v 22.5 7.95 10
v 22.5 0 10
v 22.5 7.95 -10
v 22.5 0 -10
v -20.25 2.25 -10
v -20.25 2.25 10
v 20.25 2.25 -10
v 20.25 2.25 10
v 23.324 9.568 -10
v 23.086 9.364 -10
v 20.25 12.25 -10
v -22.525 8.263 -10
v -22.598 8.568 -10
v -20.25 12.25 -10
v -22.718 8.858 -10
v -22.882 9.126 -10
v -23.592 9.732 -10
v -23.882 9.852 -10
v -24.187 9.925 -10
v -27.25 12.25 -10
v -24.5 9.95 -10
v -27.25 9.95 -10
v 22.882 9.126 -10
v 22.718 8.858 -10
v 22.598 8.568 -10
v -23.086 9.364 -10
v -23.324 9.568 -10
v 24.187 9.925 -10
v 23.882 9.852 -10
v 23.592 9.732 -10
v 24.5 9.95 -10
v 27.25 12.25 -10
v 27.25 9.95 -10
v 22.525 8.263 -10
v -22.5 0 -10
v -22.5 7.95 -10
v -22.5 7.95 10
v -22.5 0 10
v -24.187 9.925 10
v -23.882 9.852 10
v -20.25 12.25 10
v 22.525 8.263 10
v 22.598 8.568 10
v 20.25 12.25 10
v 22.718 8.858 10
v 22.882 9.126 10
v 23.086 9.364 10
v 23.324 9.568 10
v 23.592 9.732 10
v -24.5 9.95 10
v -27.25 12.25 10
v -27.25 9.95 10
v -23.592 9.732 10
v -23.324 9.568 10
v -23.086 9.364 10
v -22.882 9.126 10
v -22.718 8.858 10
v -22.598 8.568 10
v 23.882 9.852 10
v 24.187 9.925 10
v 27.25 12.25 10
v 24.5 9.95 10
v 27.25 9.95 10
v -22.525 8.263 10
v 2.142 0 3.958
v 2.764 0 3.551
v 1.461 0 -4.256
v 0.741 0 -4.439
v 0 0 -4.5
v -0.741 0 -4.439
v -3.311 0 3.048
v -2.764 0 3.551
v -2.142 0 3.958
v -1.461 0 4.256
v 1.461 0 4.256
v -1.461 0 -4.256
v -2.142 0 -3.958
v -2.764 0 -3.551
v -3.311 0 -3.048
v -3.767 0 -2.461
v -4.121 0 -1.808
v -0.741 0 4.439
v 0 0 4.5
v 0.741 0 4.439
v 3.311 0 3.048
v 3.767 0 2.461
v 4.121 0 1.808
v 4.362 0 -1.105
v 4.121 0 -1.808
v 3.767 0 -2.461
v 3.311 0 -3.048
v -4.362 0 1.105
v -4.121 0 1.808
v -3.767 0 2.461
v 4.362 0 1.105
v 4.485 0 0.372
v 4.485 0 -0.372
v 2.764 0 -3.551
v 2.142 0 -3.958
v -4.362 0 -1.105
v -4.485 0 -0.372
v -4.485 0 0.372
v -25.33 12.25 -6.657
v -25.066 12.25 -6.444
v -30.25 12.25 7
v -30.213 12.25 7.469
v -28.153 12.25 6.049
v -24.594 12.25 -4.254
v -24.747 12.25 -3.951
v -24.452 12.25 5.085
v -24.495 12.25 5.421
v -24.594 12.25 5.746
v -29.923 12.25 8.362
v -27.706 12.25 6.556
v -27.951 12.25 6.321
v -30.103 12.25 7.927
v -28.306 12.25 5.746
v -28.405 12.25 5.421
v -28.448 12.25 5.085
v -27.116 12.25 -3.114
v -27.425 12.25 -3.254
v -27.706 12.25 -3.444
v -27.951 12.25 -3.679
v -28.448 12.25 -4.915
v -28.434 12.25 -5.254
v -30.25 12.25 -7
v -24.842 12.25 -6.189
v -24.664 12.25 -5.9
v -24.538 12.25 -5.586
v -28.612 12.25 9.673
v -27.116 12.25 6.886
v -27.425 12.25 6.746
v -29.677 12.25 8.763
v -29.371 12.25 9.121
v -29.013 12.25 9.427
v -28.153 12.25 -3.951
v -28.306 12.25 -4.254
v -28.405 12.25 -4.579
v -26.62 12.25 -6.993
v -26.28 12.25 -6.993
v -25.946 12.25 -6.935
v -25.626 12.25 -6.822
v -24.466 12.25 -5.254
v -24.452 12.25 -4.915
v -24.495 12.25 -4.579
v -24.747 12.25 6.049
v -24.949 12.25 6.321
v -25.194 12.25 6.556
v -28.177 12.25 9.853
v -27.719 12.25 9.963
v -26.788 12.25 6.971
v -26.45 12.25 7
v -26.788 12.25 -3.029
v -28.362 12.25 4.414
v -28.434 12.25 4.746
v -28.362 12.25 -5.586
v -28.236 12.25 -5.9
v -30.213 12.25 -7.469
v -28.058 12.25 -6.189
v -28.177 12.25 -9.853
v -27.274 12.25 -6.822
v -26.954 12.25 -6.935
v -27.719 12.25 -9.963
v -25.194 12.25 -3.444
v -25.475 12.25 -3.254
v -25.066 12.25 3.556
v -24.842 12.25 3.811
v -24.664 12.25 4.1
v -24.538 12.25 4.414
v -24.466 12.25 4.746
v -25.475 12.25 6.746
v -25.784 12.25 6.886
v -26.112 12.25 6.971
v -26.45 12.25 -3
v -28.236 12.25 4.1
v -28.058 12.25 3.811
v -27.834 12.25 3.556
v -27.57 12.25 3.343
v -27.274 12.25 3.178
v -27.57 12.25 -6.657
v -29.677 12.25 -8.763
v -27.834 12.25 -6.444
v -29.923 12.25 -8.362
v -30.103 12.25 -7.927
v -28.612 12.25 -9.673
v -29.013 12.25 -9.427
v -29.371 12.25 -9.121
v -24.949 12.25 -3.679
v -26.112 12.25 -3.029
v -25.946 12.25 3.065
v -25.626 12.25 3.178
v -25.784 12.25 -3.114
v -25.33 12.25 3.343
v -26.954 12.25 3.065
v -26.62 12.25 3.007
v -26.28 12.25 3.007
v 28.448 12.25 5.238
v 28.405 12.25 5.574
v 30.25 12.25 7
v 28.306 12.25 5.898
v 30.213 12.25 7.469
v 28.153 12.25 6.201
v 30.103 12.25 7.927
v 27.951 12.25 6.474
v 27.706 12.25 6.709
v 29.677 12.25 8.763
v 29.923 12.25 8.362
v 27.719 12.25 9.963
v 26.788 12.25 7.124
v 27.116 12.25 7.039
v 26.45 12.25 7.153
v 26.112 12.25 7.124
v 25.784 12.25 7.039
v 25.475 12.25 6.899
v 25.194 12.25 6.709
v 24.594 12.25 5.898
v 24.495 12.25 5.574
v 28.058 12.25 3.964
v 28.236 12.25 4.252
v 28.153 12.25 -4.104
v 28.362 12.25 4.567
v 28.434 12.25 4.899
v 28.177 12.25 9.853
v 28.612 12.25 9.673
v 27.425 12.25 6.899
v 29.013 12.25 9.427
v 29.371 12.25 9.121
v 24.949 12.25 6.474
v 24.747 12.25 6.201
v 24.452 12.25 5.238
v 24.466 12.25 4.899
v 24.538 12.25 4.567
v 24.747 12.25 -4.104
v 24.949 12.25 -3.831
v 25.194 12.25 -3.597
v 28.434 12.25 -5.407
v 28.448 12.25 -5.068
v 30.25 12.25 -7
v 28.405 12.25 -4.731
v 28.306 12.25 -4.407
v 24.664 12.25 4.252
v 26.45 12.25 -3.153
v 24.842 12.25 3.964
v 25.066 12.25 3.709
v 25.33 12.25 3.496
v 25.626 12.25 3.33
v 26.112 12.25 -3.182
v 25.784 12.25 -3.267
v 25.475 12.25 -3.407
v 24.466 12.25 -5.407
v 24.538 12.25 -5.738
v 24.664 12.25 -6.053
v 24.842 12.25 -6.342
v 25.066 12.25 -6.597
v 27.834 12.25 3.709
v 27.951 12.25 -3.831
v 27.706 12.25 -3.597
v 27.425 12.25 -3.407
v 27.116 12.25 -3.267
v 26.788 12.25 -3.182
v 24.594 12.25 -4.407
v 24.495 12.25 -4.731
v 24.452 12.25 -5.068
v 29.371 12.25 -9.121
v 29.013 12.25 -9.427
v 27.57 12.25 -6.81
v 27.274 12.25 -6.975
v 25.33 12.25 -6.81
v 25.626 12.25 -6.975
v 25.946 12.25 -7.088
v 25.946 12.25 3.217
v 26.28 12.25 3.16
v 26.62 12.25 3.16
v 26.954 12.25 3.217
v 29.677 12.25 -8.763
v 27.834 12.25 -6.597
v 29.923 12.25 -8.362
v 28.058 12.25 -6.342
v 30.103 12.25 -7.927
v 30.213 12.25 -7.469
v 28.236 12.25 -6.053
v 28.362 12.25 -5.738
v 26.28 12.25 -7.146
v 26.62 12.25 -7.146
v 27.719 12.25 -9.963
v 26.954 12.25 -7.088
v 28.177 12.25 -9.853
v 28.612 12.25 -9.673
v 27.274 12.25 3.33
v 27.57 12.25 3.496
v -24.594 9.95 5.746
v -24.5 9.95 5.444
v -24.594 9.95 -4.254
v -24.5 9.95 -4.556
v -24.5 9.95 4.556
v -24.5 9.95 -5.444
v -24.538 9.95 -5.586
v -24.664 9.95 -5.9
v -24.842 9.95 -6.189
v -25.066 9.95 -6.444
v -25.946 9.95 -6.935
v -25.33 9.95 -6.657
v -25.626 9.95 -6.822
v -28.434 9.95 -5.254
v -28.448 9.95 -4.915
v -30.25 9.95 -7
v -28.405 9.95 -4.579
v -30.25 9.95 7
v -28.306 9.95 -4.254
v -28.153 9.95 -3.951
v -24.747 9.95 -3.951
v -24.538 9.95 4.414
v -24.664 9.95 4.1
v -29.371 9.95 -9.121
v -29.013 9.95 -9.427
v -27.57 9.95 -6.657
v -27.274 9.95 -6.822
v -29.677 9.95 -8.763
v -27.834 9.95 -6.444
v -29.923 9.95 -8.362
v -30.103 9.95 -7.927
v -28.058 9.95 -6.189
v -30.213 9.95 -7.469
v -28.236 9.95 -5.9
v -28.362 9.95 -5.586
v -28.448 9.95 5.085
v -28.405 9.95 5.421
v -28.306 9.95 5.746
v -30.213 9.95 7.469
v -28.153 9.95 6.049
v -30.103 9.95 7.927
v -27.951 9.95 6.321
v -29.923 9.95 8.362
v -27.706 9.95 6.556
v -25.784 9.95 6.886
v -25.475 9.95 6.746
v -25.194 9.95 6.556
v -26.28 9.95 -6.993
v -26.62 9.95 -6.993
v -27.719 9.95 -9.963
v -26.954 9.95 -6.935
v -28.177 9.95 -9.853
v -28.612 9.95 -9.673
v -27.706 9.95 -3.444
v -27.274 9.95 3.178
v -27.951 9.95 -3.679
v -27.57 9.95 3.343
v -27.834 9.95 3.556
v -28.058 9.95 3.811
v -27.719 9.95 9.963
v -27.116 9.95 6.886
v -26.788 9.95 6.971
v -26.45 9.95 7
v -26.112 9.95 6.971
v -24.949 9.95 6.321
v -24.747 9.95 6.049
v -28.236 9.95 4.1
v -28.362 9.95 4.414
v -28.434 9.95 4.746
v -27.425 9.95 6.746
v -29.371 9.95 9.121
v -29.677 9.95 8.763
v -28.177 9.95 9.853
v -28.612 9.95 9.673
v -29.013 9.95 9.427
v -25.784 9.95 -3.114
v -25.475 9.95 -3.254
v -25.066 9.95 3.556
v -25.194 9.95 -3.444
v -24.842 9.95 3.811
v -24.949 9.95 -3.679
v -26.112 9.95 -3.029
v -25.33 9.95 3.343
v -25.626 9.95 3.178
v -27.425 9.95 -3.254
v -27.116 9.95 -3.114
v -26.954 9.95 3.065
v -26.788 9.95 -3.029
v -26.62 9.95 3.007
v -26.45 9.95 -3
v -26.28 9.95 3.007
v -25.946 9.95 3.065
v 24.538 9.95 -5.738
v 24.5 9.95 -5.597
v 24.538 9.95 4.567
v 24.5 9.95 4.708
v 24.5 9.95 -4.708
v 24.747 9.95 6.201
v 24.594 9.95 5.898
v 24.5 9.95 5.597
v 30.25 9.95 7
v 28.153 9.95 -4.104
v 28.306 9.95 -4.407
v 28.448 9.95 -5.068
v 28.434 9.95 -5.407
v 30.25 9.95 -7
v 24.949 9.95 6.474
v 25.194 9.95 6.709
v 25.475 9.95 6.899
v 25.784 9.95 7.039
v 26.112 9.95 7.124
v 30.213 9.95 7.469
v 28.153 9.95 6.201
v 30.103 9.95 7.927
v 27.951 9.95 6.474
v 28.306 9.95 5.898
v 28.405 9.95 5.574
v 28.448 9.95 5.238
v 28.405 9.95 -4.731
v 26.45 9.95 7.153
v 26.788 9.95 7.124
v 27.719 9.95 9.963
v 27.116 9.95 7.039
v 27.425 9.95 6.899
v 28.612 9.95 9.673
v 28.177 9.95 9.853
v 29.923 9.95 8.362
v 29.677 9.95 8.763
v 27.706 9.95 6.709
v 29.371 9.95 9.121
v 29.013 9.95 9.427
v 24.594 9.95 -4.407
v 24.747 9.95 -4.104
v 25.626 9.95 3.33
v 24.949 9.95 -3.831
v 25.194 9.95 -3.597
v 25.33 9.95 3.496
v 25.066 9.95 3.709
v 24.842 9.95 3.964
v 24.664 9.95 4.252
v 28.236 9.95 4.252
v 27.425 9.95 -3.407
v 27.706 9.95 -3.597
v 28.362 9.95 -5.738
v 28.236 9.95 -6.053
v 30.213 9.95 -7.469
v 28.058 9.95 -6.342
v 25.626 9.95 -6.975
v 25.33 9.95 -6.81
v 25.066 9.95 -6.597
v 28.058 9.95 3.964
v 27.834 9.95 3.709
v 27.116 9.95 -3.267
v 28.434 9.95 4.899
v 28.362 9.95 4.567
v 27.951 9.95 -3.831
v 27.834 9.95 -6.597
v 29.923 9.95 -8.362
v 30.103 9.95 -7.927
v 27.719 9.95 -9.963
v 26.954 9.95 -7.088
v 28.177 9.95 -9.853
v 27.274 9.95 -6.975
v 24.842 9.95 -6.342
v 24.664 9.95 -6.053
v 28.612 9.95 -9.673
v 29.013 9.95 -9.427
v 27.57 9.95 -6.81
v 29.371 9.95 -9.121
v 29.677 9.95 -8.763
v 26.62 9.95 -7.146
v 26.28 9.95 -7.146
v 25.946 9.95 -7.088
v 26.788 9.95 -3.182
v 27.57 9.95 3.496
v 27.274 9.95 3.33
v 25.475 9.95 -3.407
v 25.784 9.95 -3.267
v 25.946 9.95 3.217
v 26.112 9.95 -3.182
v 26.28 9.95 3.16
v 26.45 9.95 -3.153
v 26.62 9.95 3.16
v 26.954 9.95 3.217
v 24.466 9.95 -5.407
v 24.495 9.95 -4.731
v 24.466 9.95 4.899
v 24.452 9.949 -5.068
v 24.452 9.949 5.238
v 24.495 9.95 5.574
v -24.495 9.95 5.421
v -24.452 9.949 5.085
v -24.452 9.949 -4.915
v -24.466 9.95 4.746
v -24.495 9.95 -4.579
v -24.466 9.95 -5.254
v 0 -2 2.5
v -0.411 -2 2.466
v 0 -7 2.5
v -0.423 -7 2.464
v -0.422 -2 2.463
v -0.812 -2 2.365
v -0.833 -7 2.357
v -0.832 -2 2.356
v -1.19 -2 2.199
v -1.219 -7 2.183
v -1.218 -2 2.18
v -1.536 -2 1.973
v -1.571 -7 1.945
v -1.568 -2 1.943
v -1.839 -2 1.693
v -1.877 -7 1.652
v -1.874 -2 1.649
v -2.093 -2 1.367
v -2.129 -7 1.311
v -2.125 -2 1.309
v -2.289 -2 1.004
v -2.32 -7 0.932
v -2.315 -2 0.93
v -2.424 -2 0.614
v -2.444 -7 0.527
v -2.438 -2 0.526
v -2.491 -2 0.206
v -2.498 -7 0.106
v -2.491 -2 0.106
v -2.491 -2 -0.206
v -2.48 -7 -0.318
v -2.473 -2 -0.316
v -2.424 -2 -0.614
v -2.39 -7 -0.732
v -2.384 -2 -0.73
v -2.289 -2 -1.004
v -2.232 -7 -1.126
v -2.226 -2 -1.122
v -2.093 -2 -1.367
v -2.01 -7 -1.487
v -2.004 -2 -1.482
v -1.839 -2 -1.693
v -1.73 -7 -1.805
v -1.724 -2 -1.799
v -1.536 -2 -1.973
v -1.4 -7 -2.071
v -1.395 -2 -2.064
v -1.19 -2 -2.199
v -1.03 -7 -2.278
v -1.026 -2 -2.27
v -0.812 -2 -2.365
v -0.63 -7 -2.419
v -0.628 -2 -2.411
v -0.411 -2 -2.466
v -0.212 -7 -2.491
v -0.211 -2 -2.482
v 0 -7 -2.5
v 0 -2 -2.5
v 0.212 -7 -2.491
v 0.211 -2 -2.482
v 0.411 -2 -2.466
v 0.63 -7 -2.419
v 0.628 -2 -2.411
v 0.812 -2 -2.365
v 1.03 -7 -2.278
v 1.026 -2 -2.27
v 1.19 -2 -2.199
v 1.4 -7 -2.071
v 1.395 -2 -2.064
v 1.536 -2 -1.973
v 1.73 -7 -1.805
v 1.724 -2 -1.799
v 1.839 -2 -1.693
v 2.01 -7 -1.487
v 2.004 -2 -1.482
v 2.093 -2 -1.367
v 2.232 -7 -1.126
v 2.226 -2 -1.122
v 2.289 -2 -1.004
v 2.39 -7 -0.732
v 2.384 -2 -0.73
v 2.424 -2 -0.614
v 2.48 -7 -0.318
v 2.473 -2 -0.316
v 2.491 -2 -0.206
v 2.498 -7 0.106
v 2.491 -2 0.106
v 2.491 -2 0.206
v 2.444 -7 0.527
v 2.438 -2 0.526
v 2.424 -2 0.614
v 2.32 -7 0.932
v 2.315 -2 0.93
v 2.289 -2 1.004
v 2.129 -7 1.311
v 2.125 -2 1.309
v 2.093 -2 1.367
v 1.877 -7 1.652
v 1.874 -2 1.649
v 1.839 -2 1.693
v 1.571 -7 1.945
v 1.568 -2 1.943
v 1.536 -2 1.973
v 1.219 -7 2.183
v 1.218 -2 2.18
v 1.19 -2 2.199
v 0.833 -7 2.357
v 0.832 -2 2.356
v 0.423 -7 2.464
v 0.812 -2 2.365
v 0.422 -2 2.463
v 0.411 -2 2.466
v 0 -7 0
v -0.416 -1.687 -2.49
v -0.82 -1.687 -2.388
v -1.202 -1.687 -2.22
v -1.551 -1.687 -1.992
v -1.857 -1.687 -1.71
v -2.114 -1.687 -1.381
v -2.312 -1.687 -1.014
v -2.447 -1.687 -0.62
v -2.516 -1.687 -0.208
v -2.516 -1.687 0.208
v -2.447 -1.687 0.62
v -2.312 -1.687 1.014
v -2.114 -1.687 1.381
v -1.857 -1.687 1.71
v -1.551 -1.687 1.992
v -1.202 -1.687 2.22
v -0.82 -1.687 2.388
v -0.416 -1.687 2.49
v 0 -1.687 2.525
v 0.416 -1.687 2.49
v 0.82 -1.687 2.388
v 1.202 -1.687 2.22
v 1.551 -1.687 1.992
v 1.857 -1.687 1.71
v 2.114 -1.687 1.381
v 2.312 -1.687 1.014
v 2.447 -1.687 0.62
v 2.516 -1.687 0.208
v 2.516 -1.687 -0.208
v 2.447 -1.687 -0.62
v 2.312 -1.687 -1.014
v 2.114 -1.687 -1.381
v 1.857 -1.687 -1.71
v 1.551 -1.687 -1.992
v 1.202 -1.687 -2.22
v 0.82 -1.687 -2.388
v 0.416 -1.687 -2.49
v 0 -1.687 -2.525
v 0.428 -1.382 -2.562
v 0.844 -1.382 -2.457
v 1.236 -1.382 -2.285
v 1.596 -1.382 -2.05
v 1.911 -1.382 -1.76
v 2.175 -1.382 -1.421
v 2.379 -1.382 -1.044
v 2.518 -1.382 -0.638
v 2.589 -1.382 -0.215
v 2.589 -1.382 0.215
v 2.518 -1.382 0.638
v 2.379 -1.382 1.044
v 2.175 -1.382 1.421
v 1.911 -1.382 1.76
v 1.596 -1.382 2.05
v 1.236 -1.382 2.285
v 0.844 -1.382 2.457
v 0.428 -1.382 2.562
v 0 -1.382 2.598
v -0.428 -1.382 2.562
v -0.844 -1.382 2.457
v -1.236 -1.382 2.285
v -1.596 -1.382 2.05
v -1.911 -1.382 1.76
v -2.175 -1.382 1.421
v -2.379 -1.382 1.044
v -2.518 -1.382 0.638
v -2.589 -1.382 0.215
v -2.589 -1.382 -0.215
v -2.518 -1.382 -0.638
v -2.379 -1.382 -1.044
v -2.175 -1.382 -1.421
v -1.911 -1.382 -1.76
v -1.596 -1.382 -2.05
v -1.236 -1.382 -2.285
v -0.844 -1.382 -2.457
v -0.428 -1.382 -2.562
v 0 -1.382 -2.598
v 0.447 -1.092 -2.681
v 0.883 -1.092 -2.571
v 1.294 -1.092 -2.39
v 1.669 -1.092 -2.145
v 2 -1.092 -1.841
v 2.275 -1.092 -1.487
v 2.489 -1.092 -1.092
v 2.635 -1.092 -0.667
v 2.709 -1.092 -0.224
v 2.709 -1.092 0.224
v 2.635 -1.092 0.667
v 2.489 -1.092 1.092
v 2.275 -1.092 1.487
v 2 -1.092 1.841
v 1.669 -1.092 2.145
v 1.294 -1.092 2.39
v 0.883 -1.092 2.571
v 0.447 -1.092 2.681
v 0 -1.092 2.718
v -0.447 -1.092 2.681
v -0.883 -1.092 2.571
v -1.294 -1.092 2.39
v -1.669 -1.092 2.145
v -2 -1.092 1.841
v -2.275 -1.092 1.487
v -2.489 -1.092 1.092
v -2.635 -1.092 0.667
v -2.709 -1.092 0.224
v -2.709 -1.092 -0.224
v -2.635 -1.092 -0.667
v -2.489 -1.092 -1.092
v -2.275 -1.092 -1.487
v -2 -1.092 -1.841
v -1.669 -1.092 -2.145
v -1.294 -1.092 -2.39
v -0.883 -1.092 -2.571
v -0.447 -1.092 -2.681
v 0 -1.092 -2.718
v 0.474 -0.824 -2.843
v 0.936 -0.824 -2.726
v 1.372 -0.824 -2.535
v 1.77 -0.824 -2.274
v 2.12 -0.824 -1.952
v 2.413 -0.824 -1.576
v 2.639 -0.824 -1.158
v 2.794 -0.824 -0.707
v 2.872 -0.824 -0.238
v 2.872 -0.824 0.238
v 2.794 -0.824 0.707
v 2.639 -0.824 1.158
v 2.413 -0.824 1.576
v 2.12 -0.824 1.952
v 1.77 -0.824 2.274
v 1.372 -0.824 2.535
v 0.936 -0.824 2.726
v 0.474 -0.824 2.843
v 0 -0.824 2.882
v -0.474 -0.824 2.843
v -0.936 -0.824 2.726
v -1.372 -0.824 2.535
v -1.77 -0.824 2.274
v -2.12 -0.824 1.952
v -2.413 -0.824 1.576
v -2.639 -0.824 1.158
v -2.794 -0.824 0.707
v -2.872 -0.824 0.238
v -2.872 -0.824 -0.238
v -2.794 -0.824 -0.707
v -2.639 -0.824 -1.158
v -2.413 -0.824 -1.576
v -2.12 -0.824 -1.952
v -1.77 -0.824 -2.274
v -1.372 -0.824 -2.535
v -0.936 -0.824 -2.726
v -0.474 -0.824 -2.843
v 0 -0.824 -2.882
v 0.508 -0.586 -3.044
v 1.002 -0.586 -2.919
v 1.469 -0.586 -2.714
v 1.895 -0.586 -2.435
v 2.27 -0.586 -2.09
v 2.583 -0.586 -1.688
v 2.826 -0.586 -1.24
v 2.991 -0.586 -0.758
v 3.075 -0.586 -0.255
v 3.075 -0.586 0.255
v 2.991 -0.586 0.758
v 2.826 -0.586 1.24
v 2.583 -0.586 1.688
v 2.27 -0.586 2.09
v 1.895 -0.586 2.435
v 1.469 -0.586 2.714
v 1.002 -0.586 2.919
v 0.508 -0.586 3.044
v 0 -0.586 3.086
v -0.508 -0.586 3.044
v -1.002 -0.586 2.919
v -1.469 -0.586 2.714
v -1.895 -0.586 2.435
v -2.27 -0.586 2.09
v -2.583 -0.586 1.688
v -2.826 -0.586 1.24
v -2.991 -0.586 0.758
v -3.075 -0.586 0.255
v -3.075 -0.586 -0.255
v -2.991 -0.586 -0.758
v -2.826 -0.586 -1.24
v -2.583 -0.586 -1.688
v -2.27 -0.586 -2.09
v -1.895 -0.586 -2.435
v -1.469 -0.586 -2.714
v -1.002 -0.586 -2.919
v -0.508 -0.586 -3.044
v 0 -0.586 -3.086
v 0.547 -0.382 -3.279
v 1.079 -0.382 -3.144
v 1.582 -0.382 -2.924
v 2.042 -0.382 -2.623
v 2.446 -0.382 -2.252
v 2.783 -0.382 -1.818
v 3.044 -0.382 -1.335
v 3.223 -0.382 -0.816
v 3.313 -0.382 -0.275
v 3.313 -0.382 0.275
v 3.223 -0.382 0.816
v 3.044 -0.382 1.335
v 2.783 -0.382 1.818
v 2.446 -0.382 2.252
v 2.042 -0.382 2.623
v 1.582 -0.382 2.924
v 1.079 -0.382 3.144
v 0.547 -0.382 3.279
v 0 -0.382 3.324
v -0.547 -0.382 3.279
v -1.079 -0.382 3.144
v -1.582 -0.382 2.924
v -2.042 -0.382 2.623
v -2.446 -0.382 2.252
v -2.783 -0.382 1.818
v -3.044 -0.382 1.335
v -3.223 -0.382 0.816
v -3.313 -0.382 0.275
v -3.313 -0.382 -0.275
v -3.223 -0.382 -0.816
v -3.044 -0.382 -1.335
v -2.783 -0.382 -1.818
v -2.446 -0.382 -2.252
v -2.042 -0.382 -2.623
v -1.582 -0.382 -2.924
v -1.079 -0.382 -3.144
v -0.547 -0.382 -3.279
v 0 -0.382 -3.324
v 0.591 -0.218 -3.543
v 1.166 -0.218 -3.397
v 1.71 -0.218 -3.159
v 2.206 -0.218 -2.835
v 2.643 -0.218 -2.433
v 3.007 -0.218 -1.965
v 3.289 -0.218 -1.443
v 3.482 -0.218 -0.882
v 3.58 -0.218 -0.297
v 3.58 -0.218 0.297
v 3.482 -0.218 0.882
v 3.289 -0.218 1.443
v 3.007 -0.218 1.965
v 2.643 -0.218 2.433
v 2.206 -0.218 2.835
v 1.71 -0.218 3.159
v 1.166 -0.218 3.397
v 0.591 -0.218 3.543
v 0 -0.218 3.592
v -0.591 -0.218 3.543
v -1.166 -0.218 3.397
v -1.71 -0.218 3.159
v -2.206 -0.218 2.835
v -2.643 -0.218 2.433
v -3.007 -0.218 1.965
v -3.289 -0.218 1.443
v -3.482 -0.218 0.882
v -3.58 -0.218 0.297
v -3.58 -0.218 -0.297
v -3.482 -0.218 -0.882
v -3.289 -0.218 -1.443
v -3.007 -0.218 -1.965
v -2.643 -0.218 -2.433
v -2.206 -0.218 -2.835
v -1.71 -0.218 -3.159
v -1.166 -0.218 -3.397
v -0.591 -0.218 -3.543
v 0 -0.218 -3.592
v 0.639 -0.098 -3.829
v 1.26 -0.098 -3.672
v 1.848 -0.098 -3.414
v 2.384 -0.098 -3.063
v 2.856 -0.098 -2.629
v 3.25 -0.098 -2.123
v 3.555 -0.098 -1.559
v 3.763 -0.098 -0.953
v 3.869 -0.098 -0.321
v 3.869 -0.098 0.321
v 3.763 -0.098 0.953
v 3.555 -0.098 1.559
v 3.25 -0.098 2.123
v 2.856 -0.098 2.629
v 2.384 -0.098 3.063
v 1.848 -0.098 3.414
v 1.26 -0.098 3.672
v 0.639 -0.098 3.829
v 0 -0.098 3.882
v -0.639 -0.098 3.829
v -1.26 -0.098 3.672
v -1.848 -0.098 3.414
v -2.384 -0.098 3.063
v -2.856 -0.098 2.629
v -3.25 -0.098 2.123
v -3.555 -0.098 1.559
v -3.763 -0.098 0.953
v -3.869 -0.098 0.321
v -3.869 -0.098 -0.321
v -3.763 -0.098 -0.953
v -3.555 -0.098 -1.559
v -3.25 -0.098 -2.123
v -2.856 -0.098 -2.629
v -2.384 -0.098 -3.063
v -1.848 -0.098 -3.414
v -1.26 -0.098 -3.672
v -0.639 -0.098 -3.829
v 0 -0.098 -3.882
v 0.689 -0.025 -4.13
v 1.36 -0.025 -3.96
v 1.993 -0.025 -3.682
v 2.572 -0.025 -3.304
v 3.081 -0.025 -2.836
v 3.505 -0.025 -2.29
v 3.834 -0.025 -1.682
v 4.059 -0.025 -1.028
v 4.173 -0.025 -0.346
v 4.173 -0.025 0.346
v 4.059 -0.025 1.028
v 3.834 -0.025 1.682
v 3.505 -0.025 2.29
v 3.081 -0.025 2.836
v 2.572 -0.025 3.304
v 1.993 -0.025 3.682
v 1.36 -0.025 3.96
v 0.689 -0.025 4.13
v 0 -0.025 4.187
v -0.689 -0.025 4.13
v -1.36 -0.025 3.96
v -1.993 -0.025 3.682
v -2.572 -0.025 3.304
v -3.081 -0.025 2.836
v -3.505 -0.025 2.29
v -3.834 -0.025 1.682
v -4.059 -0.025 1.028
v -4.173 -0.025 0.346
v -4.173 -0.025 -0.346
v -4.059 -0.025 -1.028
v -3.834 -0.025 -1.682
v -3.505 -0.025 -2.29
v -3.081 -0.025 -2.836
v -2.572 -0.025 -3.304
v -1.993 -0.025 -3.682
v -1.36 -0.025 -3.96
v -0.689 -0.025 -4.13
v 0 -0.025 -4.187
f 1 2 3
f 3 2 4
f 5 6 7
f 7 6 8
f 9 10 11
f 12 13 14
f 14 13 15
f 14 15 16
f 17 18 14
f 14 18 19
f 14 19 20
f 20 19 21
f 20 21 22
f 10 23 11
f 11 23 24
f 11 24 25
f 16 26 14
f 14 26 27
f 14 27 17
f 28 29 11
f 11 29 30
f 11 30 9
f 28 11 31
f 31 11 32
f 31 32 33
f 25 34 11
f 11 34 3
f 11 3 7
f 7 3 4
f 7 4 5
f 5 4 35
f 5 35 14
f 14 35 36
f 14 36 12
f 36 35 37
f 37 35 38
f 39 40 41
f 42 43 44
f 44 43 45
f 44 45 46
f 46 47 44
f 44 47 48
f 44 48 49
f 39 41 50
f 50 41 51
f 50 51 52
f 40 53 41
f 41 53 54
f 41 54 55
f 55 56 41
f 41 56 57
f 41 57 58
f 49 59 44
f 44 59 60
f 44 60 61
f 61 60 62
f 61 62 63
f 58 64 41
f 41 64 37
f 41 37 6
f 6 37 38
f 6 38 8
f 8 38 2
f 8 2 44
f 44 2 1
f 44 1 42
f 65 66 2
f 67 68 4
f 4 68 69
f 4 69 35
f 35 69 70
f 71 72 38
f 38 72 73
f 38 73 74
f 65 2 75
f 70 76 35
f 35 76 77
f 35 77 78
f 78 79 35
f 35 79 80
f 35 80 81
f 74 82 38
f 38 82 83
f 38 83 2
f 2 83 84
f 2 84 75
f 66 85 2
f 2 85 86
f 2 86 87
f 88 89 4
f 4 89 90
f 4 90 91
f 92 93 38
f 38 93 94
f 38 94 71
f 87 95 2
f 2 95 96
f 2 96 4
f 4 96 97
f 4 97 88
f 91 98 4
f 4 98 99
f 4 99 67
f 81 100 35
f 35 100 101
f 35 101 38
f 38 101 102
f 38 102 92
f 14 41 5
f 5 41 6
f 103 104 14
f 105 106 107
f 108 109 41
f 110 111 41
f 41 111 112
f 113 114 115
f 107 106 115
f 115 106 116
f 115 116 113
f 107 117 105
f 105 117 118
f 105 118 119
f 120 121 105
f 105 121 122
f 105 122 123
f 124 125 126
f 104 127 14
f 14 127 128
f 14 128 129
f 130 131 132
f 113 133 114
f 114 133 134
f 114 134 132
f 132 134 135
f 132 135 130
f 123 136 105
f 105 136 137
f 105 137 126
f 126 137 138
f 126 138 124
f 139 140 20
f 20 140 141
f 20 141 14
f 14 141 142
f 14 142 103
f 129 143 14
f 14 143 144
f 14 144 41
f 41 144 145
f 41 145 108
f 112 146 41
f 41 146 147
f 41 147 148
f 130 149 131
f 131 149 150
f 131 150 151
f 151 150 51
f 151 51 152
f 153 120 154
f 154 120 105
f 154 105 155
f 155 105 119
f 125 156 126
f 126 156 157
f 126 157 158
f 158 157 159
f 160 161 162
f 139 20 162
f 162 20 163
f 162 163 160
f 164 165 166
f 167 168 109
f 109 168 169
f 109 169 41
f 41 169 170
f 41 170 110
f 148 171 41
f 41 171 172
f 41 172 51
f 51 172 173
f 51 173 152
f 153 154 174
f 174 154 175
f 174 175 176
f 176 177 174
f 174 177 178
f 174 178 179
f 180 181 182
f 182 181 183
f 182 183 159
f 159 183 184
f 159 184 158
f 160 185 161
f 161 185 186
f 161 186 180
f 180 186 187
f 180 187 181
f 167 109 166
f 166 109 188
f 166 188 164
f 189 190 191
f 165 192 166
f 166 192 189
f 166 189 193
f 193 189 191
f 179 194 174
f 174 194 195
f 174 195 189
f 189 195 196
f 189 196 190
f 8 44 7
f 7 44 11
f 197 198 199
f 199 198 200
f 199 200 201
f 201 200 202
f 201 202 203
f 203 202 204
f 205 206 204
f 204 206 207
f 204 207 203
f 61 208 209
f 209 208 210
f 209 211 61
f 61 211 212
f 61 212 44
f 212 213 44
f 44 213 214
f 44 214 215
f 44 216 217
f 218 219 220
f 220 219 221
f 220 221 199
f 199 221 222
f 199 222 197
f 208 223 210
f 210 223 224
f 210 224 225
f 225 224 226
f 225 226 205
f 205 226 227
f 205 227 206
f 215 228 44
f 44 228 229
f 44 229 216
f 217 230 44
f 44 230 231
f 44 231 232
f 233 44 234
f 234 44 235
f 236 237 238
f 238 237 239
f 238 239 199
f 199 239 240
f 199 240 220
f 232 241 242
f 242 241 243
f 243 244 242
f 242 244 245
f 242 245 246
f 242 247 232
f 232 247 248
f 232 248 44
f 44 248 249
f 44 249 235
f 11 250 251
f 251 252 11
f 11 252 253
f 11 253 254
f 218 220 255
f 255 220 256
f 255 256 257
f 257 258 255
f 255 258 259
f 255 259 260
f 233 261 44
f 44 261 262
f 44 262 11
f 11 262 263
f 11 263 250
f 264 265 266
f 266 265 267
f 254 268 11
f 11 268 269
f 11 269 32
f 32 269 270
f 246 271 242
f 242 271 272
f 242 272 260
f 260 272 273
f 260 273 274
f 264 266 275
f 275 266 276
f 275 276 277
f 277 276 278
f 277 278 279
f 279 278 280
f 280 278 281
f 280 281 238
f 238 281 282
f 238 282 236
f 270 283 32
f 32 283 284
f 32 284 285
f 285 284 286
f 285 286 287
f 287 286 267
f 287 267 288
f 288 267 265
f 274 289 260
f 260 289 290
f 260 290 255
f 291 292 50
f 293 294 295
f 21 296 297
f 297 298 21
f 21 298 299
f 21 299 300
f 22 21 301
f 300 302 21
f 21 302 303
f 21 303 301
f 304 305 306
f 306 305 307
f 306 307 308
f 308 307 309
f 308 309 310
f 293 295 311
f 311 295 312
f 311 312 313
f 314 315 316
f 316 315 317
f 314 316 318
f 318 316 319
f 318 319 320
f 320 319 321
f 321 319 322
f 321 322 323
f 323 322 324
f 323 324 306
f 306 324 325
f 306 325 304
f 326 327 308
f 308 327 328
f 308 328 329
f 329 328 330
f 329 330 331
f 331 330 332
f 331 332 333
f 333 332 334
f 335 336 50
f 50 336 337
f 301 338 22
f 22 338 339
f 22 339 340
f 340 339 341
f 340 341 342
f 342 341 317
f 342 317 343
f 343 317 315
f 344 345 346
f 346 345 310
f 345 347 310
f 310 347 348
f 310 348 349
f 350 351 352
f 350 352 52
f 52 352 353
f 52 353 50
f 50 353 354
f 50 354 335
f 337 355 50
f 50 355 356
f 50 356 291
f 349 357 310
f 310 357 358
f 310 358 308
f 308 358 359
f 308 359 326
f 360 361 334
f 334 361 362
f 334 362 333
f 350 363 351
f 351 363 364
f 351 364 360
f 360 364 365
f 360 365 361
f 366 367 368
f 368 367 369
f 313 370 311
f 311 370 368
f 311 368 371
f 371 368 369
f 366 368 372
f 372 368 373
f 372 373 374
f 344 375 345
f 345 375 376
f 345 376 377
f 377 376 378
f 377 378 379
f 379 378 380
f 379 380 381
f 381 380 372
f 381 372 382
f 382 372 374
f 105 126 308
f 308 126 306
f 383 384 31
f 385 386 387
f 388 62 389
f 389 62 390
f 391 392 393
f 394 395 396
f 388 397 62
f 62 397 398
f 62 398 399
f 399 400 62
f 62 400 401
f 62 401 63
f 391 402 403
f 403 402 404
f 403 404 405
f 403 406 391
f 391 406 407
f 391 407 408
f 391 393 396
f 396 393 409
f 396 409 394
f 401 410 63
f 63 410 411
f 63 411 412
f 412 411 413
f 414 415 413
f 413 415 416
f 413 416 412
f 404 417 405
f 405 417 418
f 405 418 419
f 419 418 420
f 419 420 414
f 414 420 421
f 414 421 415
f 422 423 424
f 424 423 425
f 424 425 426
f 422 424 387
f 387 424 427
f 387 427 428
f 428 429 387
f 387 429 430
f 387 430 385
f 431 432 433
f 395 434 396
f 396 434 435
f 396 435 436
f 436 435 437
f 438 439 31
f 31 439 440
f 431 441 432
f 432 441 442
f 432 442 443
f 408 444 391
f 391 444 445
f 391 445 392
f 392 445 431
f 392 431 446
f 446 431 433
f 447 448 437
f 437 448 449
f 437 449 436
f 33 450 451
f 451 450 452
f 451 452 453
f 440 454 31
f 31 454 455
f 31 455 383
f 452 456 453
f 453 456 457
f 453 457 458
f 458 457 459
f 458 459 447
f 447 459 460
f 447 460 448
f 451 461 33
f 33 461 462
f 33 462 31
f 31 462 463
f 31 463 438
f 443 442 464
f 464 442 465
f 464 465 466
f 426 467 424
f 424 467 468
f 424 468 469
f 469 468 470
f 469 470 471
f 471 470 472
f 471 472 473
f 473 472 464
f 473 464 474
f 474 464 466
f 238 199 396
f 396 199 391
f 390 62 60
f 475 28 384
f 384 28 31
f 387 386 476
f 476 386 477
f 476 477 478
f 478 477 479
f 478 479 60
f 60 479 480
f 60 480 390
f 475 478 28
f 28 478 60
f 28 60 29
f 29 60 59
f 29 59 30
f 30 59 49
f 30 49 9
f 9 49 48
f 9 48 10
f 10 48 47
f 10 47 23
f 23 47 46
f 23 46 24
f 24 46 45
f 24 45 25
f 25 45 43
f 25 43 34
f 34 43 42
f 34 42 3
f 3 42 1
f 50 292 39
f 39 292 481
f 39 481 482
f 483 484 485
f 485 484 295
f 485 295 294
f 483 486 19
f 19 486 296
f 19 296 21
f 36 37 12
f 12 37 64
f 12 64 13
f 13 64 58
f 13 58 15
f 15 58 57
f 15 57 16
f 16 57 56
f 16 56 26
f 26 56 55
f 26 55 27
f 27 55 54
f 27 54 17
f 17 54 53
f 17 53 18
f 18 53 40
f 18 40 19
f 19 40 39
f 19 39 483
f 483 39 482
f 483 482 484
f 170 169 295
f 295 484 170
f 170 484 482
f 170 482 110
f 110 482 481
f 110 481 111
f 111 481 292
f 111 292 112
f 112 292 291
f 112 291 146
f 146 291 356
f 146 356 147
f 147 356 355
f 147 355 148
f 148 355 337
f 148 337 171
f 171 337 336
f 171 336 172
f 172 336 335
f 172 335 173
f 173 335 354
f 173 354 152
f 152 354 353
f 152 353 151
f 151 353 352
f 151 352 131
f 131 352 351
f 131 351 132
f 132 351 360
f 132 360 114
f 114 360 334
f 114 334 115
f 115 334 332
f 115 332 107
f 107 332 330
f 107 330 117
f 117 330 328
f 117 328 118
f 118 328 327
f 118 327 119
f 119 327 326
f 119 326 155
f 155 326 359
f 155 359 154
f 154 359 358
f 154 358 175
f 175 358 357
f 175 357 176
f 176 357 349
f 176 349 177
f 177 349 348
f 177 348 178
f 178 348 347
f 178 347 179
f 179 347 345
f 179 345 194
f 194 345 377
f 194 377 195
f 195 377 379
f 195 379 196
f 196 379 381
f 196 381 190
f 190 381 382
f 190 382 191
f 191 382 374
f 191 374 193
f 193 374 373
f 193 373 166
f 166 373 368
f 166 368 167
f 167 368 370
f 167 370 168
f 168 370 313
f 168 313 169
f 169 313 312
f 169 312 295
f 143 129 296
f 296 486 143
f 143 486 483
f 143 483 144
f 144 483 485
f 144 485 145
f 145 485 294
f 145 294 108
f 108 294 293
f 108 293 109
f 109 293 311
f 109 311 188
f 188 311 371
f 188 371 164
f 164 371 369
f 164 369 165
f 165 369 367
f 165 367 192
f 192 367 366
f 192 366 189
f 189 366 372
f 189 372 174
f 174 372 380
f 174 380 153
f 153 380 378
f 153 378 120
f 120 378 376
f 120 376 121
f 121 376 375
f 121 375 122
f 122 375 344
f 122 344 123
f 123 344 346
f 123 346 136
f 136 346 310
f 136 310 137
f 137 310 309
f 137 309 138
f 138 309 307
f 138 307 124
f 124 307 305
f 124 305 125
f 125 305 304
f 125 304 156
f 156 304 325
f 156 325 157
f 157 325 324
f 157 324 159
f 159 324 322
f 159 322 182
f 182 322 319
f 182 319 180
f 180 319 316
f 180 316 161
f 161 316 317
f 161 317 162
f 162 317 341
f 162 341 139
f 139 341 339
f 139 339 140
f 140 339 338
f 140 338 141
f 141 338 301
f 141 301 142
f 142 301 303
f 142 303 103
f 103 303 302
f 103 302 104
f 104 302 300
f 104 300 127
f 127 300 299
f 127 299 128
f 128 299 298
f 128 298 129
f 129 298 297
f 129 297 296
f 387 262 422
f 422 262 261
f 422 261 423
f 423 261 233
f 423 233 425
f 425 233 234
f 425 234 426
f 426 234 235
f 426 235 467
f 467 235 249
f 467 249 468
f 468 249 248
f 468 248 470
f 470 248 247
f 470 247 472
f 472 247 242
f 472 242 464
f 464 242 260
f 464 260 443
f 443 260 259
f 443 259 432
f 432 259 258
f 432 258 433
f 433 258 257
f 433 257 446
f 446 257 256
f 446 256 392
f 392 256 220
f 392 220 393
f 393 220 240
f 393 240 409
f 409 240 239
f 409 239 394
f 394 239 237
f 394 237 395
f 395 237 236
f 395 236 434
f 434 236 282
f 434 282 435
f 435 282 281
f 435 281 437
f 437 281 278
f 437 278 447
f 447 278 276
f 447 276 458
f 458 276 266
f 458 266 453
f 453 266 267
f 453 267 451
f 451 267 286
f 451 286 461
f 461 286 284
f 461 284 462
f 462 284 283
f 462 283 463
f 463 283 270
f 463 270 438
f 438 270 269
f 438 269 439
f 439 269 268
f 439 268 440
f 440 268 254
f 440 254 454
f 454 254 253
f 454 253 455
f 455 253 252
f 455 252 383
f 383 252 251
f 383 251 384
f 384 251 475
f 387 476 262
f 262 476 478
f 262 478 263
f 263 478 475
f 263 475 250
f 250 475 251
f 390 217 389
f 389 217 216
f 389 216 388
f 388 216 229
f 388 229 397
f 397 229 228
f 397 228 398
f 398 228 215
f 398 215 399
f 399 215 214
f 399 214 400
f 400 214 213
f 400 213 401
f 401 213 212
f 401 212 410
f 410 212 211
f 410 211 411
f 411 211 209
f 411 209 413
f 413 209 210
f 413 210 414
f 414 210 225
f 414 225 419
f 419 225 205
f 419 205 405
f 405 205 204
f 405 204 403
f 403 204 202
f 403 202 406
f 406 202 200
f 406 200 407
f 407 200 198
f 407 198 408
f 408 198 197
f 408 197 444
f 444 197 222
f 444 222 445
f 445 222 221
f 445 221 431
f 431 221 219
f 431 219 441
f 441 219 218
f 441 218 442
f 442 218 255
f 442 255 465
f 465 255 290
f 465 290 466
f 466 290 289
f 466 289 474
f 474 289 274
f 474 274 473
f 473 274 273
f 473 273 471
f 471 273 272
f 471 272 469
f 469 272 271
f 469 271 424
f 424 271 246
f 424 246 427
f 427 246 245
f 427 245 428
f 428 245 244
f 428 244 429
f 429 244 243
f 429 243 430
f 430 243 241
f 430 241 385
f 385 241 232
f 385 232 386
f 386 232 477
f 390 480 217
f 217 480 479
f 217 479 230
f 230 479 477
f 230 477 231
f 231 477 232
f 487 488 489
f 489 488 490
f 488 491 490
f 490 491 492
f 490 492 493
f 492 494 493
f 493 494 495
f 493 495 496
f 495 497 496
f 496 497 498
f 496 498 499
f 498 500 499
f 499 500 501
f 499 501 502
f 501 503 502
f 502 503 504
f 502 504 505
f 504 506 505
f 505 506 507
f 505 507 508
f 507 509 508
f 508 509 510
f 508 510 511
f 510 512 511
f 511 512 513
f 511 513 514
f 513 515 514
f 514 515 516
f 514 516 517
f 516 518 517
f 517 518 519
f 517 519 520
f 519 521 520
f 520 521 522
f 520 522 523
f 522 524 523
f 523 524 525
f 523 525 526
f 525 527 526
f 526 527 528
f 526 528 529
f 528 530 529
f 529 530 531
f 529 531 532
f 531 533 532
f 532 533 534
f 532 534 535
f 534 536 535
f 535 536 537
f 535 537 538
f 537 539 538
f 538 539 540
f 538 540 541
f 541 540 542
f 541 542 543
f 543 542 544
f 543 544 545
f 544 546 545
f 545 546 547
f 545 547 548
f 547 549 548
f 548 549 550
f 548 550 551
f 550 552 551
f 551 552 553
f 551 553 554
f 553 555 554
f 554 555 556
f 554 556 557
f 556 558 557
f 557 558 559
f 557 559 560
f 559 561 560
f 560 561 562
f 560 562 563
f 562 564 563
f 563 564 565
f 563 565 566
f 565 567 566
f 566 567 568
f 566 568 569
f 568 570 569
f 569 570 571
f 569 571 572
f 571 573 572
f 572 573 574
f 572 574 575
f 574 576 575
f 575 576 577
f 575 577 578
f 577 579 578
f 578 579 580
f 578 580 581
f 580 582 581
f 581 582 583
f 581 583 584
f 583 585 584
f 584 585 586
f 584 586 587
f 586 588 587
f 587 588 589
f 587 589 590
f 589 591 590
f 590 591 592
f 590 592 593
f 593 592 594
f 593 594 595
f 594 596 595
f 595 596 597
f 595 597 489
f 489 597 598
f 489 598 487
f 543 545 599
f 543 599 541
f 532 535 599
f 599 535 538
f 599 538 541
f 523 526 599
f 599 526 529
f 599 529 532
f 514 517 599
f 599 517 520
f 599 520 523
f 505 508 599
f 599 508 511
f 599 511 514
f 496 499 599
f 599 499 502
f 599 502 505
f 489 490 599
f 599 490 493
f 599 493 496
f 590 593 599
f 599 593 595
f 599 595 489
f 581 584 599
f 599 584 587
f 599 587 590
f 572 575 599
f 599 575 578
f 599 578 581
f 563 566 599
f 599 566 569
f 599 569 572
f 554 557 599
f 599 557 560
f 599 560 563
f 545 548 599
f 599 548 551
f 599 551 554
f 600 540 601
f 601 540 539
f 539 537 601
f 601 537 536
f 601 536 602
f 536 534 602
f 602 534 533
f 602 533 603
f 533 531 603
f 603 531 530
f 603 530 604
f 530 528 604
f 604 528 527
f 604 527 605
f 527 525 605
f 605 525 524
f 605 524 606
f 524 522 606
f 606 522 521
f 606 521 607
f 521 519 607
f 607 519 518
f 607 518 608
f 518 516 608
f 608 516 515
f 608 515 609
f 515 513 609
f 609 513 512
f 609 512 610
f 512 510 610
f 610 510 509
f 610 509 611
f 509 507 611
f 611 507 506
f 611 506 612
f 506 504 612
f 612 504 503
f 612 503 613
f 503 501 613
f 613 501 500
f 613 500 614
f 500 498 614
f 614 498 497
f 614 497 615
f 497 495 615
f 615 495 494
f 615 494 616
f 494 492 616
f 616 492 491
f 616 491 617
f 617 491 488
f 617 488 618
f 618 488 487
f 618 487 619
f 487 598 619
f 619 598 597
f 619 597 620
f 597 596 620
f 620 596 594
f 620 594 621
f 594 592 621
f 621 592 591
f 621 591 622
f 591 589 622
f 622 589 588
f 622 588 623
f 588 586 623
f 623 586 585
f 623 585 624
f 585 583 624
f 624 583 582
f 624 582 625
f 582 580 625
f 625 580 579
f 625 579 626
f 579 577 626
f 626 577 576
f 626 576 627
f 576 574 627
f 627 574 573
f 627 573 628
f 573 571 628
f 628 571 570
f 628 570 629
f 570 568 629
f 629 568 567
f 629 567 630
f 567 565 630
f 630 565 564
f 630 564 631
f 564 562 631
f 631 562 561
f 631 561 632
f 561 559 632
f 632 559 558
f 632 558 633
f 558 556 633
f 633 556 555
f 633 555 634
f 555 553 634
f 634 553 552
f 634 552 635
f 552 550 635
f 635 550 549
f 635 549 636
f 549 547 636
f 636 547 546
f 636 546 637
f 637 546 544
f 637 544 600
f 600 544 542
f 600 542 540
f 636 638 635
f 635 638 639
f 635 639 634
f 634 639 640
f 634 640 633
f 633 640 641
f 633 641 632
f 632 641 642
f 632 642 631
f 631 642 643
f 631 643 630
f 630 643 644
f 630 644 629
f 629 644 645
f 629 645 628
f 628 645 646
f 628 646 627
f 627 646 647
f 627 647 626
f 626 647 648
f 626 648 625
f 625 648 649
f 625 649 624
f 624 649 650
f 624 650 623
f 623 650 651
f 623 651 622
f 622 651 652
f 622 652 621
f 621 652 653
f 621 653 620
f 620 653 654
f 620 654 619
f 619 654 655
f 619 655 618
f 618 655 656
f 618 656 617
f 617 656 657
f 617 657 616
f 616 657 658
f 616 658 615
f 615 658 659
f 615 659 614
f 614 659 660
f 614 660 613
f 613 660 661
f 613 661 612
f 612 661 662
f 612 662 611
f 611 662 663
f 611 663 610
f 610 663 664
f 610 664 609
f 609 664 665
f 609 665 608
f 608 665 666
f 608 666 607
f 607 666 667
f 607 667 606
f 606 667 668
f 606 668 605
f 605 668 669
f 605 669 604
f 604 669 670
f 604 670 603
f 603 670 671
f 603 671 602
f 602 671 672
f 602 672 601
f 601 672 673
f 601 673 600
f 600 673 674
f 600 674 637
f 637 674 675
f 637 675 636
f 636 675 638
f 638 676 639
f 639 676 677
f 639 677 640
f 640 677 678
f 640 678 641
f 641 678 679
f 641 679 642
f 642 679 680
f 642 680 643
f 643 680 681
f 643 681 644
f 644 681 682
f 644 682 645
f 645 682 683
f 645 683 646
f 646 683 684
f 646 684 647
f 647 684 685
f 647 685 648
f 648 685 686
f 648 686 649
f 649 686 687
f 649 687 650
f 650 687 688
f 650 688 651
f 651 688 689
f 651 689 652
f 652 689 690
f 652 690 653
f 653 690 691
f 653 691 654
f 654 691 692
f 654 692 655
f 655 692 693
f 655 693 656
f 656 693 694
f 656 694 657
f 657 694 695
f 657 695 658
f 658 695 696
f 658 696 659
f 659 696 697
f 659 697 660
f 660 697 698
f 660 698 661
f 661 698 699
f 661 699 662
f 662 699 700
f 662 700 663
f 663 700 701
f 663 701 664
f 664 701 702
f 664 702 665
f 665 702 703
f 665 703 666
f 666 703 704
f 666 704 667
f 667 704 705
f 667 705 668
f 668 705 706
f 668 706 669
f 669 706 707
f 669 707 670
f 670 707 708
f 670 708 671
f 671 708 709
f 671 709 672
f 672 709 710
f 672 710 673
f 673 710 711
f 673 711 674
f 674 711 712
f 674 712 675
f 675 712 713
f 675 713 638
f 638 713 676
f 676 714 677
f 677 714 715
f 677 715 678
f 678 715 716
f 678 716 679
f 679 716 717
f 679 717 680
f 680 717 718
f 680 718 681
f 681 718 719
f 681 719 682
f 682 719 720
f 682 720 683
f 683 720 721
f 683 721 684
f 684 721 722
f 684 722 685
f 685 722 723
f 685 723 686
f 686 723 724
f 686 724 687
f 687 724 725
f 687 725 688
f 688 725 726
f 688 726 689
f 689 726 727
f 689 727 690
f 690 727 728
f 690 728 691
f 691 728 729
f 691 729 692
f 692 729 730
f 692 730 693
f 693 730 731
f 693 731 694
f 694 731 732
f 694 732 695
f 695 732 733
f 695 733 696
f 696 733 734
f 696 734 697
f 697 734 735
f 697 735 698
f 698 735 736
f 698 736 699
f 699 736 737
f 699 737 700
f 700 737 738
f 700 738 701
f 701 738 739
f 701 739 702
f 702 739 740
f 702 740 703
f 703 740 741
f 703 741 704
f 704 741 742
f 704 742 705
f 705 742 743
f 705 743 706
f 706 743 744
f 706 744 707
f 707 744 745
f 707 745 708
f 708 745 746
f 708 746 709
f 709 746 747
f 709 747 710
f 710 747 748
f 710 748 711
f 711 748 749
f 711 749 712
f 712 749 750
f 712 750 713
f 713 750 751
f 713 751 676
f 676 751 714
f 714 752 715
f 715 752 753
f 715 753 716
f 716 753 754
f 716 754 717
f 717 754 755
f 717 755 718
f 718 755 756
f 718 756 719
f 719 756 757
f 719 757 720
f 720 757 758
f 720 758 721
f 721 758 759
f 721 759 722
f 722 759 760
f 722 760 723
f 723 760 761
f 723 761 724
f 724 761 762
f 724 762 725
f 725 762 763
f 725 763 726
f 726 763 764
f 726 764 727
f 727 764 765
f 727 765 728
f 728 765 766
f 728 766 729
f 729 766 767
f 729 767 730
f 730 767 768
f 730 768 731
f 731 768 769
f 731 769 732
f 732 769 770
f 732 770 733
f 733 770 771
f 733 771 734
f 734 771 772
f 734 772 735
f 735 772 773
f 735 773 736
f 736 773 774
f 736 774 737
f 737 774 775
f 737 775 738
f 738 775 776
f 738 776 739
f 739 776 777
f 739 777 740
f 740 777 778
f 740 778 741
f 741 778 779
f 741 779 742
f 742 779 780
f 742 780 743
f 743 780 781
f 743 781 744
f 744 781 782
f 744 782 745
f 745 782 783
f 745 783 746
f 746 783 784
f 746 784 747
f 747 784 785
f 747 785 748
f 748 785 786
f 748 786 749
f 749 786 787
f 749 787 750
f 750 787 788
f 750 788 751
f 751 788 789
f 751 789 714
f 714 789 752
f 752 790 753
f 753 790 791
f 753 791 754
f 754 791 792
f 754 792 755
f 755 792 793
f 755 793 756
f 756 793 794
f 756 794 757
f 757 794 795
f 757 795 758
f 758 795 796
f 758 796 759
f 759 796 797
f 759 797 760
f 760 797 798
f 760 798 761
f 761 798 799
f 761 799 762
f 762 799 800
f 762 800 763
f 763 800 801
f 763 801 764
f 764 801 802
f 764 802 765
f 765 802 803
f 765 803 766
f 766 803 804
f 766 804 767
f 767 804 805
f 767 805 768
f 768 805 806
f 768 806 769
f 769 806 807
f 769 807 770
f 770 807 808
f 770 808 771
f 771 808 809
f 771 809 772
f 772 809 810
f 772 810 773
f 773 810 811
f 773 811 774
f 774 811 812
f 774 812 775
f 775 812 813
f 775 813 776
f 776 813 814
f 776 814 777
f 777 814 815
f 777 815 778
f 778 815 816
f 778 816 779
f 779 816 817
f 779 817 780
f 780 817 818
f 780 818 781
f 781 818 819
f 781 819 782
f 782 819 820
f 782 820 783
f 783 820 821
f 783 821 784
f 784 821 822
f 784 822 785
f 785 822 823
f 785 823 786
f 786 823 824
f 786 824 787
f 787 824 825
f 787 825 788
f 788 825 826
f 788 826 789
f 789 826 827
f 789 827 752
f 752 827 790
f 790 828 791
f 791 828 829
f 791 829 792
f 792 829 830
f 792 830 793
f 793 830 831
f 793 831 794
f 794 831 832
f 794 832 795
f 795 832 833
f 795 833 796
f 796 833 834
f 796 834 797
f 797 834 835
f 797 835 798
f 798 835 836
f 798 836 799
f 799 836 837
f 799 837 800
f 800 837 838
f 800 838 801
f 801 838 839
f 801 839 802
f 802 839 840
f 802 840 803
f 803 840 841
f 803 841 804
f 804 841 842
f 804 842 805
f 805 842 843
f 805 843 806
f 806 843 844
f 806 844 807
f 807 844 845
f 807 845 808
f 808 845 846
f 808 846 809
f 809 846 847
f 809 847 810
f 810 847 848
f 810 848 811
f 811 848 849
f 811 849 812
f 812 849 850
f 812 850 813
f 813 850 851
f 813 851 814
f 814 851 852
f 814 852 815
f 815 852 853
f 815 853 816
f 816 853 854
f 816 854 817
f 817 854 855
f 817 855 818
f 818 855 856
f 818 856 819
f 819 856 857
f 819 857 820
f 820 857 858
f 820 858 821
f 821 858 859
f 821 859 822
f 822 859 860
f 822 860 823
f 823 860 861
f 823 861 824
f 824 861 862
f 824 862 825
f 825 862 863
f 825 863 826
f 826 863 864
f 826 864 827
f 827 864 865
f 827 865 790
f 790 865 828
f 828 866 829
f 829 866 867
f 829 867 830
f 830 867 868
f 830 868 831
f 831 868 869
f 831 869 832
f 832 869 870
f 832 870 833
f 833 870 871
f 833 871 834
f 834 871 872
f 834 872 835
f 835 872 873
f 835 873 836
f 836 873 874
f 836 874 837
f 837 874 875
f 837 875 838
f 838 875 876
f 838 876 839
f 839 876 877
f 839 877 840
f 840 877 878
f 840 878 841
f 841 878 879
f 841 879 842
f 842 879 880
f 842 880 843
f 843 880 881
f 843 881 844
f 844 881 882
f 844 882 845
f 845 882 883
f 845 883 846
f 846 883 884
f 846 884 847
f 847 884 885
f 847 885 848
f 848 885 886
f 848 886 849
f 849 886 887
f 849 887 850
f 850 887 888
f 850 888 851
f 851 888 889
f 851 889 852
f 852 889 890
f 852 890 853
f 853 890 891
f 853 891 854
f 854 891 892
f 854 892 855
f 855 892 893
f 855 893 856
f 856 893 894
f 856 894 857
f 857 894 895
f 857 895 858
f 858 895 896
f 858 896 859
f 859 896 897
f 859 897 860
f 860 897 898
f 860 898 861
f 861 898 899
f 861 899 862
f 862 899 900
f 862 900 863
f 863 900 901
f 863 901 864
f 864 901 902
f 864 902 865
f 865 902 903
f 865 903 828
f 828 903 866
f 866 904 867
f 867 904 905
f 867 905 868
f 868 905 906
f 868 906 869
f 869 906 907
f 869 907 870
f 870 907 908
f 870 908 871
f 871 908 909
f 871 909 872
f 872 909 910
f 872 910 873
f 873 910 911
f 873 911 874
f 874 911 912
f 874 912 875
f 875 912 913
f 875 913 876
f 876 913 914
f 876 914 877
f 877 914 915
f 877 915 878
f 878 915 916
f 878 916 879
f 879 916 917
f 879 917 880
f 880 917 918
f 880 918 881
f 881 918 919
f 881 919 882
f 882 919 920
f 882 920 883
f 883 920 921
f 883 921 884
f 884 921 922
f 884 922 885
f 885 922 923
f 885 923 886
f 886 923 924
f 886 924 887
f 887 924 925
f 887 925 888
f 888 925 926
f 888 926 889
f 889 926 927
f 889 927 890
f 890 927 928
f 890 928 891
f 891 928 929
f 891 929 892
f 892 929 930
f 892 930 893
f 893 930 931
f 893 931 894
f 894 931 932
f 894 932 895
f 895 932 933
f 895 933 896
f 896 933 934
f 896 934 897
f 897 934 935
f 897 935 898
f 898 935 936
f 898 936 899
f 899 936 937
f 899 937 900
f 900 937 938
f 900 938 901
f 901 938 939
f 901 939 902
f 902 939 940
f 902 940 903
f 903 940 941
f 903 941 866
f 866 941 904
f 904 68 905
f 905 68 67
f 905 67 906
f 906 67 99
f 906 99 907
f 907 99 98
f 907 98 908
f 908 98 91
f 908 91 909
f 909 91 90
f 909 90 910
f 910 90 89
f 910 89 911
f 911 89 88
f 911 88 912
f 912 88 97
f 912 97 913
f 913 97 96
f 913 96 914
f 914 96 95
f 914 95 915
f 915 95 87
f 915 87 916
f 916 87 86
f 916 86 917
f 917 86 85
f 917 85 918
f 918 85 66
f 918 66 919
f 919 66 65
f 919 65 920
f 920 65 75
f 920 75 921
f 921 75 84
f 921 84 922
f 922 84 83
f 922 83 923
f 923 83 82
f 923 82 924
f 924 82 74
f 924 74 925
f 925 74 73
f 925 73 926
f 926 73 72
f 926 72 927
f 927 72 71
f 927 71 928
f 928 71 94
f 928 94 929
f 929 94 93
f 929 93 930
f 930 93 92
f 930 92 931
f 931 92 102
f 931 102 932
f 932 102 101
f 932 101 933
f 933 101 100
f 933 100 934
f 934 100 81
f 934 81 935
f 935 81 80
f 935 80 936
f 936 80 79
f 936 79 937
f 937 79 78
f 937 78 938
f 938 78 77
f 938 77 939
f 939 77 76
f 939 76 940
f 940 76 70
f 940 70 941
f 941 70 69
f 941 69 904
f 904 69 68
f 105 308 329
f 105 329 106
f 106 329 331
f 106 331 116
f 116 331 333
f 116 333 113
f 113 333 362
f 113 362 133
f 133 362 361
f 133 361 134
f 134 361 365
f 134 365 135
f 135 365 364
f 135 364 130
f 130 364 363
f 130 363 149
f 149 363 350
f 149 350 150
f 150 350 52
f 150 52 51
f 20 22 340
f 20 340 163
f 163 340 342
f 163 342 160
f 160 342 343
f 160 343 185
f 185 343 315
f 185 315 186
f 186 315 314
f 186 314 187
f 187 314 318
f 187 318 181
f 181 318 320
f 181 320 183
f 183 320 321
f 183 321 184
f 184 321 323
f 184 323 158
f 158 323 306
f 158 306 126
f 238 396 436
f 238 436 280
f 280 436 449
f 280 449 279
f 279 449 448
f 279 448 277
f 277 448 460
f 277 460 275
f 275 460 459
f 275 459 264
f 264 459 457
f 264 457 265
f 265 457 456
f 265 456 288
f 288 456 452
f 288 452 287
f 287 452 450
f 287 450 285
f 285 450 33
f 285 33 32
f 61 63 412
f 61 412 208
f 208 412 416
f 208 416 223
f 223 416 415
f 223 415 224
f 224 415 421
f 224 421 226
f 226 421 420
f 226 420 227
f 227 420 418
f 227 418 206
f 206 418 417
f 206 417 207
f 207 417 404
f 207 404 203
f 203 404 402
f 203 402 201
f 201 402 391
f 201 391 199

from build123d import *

# Parameters (mm, degrees)
SKETCH1_W           = 45
SKETCH1_H           = 20
BOSS_EXTRUDE1_DEPTH = 2.25
SKETCH2_W           = 2.25
SKETCH2_H           = 20
BOSS_EXTRUDE2_DEPTH = 10
SKETCH3_W           = 10
SKETCH3_H           = 20
BOSS_EXTRUDE3_DEPTH = 2.3
FILLET1_R           = 2
SKETCH4_R           = 2
CUT_EXTRUDE1_DEPTH  = 35.133927404
SKETCH5_R           = 2.5
BOSS_EXTRUDE4_DEPTH = 7
FILLET2_R           = 2
FILLET3_R           = 3


with BuildPart() as part:
    # Sketch1 → Boss-Extrude1 (new body)
    with BuildSketch(Plane(origin=(0, 0, 0), x_dir=(1, 0, 0), z_dir=(0, 1, 0))):
        Rectangle(SKETCH1_W, SKETCH1_H)
    extrude(amount=BOSS_EXTRUDE1_DEPTH)

    # Sketch2 → Boss-Extrude2 (add)
    with BuildSketch(Plane(origin=(0, 2.25, 0), x_dir=(1, 0, 0), z_dir=(0, 1, 0))):
        with Locations((-21.375, 0)):
            Rectangle(SKETCH2_W, SKETCH2_H)
        with Locations((21.375, 0)):
            Rectangle(SKETCH2_W, SKETCH2_H)
    extrude(amount=BOSS_EXTRUDE2_DEPTH)

    # Sketch3 → Boss-Extrude3 (add)
    with BuildSketch(Plane(origin=(0, 12.25, 0), x_dir=(1, 0, 0), z_dir=(0, 1, 0))):
        with Locations((-25.25, 0)):
            Rectangle(SKETCH3_W, SKETCH3_H)
        with Locations((25.25, 0)):
            Rectangle(SKETCH3_W, SKETCH3_H)
    extrude(amount=-BOSS_EXTRUDE3_DEPTH)

    # Fillet1
    fillet1_edges = [part.edges().sort_by_distance(p)[0] for p in [
        (-22.5, 9.95, 0),
        (22.5, 9.95, 0),
    ]]
    fillet(fillet1_edges, radius=FILLET1_R)

    # Sketch4 → Cut-Extrude1 (cut, through all)
    with BuildSketch(Plane(origin=(0, 12.25, 0), x_dir=(1, 0, 0), z_dir=(0, 1, 0))):
        with Locations(Location((26.45, 5.15278214, 0), (0, 0, 270))):
            Circle(SKETCH4_R)
        with Locations(Location((26.45, -5.15278214, 0), (0, 0, 270))):
            Circle(SKETCH4_R)
        with Locations(Location((-26.45, 5, 0), (0, 0, 270))):
            Circle(SKETCH4_R)
        with Locations(Location((-26.45, -5, 0), (0, 0, 270))):
            Circle(SKETCH4_R)
    extrude(amount=-CUT_EXTRUDE1_DEPTH, mode=Mode.SUBTRACT)

    # Sketch5 → Boss-Extrude4 (add)
    with BuildSketch(Plane.XZ):
        with Locations(Location((0, 0, 0), (0, 0, 270))):
            Circle(SKETCH5_R)
    extrude(amount=BOSS_EXTRUDE4_DEPTH)

    # Fillet2
    fillet2_edges = [part.edges().sort_by_distance(p)[0] for p in [
        (0, 0, 2.5),
    ]]
    fillet(fillet2_edges, radius=FILLET2_R)

    # Fillet3
    fillet3_edges = [part.edges().sort_by_distance(p)[0] for p in [
        (-30.25, 11.1, -10),
        (-30.25, 11.1, 10),
        (30.25, 11.1, 10),
        (30.25, 11.1, -10),
    ]]
    fillet(fillet3_edges, radius=FILLET3_R)


solid = part.part
